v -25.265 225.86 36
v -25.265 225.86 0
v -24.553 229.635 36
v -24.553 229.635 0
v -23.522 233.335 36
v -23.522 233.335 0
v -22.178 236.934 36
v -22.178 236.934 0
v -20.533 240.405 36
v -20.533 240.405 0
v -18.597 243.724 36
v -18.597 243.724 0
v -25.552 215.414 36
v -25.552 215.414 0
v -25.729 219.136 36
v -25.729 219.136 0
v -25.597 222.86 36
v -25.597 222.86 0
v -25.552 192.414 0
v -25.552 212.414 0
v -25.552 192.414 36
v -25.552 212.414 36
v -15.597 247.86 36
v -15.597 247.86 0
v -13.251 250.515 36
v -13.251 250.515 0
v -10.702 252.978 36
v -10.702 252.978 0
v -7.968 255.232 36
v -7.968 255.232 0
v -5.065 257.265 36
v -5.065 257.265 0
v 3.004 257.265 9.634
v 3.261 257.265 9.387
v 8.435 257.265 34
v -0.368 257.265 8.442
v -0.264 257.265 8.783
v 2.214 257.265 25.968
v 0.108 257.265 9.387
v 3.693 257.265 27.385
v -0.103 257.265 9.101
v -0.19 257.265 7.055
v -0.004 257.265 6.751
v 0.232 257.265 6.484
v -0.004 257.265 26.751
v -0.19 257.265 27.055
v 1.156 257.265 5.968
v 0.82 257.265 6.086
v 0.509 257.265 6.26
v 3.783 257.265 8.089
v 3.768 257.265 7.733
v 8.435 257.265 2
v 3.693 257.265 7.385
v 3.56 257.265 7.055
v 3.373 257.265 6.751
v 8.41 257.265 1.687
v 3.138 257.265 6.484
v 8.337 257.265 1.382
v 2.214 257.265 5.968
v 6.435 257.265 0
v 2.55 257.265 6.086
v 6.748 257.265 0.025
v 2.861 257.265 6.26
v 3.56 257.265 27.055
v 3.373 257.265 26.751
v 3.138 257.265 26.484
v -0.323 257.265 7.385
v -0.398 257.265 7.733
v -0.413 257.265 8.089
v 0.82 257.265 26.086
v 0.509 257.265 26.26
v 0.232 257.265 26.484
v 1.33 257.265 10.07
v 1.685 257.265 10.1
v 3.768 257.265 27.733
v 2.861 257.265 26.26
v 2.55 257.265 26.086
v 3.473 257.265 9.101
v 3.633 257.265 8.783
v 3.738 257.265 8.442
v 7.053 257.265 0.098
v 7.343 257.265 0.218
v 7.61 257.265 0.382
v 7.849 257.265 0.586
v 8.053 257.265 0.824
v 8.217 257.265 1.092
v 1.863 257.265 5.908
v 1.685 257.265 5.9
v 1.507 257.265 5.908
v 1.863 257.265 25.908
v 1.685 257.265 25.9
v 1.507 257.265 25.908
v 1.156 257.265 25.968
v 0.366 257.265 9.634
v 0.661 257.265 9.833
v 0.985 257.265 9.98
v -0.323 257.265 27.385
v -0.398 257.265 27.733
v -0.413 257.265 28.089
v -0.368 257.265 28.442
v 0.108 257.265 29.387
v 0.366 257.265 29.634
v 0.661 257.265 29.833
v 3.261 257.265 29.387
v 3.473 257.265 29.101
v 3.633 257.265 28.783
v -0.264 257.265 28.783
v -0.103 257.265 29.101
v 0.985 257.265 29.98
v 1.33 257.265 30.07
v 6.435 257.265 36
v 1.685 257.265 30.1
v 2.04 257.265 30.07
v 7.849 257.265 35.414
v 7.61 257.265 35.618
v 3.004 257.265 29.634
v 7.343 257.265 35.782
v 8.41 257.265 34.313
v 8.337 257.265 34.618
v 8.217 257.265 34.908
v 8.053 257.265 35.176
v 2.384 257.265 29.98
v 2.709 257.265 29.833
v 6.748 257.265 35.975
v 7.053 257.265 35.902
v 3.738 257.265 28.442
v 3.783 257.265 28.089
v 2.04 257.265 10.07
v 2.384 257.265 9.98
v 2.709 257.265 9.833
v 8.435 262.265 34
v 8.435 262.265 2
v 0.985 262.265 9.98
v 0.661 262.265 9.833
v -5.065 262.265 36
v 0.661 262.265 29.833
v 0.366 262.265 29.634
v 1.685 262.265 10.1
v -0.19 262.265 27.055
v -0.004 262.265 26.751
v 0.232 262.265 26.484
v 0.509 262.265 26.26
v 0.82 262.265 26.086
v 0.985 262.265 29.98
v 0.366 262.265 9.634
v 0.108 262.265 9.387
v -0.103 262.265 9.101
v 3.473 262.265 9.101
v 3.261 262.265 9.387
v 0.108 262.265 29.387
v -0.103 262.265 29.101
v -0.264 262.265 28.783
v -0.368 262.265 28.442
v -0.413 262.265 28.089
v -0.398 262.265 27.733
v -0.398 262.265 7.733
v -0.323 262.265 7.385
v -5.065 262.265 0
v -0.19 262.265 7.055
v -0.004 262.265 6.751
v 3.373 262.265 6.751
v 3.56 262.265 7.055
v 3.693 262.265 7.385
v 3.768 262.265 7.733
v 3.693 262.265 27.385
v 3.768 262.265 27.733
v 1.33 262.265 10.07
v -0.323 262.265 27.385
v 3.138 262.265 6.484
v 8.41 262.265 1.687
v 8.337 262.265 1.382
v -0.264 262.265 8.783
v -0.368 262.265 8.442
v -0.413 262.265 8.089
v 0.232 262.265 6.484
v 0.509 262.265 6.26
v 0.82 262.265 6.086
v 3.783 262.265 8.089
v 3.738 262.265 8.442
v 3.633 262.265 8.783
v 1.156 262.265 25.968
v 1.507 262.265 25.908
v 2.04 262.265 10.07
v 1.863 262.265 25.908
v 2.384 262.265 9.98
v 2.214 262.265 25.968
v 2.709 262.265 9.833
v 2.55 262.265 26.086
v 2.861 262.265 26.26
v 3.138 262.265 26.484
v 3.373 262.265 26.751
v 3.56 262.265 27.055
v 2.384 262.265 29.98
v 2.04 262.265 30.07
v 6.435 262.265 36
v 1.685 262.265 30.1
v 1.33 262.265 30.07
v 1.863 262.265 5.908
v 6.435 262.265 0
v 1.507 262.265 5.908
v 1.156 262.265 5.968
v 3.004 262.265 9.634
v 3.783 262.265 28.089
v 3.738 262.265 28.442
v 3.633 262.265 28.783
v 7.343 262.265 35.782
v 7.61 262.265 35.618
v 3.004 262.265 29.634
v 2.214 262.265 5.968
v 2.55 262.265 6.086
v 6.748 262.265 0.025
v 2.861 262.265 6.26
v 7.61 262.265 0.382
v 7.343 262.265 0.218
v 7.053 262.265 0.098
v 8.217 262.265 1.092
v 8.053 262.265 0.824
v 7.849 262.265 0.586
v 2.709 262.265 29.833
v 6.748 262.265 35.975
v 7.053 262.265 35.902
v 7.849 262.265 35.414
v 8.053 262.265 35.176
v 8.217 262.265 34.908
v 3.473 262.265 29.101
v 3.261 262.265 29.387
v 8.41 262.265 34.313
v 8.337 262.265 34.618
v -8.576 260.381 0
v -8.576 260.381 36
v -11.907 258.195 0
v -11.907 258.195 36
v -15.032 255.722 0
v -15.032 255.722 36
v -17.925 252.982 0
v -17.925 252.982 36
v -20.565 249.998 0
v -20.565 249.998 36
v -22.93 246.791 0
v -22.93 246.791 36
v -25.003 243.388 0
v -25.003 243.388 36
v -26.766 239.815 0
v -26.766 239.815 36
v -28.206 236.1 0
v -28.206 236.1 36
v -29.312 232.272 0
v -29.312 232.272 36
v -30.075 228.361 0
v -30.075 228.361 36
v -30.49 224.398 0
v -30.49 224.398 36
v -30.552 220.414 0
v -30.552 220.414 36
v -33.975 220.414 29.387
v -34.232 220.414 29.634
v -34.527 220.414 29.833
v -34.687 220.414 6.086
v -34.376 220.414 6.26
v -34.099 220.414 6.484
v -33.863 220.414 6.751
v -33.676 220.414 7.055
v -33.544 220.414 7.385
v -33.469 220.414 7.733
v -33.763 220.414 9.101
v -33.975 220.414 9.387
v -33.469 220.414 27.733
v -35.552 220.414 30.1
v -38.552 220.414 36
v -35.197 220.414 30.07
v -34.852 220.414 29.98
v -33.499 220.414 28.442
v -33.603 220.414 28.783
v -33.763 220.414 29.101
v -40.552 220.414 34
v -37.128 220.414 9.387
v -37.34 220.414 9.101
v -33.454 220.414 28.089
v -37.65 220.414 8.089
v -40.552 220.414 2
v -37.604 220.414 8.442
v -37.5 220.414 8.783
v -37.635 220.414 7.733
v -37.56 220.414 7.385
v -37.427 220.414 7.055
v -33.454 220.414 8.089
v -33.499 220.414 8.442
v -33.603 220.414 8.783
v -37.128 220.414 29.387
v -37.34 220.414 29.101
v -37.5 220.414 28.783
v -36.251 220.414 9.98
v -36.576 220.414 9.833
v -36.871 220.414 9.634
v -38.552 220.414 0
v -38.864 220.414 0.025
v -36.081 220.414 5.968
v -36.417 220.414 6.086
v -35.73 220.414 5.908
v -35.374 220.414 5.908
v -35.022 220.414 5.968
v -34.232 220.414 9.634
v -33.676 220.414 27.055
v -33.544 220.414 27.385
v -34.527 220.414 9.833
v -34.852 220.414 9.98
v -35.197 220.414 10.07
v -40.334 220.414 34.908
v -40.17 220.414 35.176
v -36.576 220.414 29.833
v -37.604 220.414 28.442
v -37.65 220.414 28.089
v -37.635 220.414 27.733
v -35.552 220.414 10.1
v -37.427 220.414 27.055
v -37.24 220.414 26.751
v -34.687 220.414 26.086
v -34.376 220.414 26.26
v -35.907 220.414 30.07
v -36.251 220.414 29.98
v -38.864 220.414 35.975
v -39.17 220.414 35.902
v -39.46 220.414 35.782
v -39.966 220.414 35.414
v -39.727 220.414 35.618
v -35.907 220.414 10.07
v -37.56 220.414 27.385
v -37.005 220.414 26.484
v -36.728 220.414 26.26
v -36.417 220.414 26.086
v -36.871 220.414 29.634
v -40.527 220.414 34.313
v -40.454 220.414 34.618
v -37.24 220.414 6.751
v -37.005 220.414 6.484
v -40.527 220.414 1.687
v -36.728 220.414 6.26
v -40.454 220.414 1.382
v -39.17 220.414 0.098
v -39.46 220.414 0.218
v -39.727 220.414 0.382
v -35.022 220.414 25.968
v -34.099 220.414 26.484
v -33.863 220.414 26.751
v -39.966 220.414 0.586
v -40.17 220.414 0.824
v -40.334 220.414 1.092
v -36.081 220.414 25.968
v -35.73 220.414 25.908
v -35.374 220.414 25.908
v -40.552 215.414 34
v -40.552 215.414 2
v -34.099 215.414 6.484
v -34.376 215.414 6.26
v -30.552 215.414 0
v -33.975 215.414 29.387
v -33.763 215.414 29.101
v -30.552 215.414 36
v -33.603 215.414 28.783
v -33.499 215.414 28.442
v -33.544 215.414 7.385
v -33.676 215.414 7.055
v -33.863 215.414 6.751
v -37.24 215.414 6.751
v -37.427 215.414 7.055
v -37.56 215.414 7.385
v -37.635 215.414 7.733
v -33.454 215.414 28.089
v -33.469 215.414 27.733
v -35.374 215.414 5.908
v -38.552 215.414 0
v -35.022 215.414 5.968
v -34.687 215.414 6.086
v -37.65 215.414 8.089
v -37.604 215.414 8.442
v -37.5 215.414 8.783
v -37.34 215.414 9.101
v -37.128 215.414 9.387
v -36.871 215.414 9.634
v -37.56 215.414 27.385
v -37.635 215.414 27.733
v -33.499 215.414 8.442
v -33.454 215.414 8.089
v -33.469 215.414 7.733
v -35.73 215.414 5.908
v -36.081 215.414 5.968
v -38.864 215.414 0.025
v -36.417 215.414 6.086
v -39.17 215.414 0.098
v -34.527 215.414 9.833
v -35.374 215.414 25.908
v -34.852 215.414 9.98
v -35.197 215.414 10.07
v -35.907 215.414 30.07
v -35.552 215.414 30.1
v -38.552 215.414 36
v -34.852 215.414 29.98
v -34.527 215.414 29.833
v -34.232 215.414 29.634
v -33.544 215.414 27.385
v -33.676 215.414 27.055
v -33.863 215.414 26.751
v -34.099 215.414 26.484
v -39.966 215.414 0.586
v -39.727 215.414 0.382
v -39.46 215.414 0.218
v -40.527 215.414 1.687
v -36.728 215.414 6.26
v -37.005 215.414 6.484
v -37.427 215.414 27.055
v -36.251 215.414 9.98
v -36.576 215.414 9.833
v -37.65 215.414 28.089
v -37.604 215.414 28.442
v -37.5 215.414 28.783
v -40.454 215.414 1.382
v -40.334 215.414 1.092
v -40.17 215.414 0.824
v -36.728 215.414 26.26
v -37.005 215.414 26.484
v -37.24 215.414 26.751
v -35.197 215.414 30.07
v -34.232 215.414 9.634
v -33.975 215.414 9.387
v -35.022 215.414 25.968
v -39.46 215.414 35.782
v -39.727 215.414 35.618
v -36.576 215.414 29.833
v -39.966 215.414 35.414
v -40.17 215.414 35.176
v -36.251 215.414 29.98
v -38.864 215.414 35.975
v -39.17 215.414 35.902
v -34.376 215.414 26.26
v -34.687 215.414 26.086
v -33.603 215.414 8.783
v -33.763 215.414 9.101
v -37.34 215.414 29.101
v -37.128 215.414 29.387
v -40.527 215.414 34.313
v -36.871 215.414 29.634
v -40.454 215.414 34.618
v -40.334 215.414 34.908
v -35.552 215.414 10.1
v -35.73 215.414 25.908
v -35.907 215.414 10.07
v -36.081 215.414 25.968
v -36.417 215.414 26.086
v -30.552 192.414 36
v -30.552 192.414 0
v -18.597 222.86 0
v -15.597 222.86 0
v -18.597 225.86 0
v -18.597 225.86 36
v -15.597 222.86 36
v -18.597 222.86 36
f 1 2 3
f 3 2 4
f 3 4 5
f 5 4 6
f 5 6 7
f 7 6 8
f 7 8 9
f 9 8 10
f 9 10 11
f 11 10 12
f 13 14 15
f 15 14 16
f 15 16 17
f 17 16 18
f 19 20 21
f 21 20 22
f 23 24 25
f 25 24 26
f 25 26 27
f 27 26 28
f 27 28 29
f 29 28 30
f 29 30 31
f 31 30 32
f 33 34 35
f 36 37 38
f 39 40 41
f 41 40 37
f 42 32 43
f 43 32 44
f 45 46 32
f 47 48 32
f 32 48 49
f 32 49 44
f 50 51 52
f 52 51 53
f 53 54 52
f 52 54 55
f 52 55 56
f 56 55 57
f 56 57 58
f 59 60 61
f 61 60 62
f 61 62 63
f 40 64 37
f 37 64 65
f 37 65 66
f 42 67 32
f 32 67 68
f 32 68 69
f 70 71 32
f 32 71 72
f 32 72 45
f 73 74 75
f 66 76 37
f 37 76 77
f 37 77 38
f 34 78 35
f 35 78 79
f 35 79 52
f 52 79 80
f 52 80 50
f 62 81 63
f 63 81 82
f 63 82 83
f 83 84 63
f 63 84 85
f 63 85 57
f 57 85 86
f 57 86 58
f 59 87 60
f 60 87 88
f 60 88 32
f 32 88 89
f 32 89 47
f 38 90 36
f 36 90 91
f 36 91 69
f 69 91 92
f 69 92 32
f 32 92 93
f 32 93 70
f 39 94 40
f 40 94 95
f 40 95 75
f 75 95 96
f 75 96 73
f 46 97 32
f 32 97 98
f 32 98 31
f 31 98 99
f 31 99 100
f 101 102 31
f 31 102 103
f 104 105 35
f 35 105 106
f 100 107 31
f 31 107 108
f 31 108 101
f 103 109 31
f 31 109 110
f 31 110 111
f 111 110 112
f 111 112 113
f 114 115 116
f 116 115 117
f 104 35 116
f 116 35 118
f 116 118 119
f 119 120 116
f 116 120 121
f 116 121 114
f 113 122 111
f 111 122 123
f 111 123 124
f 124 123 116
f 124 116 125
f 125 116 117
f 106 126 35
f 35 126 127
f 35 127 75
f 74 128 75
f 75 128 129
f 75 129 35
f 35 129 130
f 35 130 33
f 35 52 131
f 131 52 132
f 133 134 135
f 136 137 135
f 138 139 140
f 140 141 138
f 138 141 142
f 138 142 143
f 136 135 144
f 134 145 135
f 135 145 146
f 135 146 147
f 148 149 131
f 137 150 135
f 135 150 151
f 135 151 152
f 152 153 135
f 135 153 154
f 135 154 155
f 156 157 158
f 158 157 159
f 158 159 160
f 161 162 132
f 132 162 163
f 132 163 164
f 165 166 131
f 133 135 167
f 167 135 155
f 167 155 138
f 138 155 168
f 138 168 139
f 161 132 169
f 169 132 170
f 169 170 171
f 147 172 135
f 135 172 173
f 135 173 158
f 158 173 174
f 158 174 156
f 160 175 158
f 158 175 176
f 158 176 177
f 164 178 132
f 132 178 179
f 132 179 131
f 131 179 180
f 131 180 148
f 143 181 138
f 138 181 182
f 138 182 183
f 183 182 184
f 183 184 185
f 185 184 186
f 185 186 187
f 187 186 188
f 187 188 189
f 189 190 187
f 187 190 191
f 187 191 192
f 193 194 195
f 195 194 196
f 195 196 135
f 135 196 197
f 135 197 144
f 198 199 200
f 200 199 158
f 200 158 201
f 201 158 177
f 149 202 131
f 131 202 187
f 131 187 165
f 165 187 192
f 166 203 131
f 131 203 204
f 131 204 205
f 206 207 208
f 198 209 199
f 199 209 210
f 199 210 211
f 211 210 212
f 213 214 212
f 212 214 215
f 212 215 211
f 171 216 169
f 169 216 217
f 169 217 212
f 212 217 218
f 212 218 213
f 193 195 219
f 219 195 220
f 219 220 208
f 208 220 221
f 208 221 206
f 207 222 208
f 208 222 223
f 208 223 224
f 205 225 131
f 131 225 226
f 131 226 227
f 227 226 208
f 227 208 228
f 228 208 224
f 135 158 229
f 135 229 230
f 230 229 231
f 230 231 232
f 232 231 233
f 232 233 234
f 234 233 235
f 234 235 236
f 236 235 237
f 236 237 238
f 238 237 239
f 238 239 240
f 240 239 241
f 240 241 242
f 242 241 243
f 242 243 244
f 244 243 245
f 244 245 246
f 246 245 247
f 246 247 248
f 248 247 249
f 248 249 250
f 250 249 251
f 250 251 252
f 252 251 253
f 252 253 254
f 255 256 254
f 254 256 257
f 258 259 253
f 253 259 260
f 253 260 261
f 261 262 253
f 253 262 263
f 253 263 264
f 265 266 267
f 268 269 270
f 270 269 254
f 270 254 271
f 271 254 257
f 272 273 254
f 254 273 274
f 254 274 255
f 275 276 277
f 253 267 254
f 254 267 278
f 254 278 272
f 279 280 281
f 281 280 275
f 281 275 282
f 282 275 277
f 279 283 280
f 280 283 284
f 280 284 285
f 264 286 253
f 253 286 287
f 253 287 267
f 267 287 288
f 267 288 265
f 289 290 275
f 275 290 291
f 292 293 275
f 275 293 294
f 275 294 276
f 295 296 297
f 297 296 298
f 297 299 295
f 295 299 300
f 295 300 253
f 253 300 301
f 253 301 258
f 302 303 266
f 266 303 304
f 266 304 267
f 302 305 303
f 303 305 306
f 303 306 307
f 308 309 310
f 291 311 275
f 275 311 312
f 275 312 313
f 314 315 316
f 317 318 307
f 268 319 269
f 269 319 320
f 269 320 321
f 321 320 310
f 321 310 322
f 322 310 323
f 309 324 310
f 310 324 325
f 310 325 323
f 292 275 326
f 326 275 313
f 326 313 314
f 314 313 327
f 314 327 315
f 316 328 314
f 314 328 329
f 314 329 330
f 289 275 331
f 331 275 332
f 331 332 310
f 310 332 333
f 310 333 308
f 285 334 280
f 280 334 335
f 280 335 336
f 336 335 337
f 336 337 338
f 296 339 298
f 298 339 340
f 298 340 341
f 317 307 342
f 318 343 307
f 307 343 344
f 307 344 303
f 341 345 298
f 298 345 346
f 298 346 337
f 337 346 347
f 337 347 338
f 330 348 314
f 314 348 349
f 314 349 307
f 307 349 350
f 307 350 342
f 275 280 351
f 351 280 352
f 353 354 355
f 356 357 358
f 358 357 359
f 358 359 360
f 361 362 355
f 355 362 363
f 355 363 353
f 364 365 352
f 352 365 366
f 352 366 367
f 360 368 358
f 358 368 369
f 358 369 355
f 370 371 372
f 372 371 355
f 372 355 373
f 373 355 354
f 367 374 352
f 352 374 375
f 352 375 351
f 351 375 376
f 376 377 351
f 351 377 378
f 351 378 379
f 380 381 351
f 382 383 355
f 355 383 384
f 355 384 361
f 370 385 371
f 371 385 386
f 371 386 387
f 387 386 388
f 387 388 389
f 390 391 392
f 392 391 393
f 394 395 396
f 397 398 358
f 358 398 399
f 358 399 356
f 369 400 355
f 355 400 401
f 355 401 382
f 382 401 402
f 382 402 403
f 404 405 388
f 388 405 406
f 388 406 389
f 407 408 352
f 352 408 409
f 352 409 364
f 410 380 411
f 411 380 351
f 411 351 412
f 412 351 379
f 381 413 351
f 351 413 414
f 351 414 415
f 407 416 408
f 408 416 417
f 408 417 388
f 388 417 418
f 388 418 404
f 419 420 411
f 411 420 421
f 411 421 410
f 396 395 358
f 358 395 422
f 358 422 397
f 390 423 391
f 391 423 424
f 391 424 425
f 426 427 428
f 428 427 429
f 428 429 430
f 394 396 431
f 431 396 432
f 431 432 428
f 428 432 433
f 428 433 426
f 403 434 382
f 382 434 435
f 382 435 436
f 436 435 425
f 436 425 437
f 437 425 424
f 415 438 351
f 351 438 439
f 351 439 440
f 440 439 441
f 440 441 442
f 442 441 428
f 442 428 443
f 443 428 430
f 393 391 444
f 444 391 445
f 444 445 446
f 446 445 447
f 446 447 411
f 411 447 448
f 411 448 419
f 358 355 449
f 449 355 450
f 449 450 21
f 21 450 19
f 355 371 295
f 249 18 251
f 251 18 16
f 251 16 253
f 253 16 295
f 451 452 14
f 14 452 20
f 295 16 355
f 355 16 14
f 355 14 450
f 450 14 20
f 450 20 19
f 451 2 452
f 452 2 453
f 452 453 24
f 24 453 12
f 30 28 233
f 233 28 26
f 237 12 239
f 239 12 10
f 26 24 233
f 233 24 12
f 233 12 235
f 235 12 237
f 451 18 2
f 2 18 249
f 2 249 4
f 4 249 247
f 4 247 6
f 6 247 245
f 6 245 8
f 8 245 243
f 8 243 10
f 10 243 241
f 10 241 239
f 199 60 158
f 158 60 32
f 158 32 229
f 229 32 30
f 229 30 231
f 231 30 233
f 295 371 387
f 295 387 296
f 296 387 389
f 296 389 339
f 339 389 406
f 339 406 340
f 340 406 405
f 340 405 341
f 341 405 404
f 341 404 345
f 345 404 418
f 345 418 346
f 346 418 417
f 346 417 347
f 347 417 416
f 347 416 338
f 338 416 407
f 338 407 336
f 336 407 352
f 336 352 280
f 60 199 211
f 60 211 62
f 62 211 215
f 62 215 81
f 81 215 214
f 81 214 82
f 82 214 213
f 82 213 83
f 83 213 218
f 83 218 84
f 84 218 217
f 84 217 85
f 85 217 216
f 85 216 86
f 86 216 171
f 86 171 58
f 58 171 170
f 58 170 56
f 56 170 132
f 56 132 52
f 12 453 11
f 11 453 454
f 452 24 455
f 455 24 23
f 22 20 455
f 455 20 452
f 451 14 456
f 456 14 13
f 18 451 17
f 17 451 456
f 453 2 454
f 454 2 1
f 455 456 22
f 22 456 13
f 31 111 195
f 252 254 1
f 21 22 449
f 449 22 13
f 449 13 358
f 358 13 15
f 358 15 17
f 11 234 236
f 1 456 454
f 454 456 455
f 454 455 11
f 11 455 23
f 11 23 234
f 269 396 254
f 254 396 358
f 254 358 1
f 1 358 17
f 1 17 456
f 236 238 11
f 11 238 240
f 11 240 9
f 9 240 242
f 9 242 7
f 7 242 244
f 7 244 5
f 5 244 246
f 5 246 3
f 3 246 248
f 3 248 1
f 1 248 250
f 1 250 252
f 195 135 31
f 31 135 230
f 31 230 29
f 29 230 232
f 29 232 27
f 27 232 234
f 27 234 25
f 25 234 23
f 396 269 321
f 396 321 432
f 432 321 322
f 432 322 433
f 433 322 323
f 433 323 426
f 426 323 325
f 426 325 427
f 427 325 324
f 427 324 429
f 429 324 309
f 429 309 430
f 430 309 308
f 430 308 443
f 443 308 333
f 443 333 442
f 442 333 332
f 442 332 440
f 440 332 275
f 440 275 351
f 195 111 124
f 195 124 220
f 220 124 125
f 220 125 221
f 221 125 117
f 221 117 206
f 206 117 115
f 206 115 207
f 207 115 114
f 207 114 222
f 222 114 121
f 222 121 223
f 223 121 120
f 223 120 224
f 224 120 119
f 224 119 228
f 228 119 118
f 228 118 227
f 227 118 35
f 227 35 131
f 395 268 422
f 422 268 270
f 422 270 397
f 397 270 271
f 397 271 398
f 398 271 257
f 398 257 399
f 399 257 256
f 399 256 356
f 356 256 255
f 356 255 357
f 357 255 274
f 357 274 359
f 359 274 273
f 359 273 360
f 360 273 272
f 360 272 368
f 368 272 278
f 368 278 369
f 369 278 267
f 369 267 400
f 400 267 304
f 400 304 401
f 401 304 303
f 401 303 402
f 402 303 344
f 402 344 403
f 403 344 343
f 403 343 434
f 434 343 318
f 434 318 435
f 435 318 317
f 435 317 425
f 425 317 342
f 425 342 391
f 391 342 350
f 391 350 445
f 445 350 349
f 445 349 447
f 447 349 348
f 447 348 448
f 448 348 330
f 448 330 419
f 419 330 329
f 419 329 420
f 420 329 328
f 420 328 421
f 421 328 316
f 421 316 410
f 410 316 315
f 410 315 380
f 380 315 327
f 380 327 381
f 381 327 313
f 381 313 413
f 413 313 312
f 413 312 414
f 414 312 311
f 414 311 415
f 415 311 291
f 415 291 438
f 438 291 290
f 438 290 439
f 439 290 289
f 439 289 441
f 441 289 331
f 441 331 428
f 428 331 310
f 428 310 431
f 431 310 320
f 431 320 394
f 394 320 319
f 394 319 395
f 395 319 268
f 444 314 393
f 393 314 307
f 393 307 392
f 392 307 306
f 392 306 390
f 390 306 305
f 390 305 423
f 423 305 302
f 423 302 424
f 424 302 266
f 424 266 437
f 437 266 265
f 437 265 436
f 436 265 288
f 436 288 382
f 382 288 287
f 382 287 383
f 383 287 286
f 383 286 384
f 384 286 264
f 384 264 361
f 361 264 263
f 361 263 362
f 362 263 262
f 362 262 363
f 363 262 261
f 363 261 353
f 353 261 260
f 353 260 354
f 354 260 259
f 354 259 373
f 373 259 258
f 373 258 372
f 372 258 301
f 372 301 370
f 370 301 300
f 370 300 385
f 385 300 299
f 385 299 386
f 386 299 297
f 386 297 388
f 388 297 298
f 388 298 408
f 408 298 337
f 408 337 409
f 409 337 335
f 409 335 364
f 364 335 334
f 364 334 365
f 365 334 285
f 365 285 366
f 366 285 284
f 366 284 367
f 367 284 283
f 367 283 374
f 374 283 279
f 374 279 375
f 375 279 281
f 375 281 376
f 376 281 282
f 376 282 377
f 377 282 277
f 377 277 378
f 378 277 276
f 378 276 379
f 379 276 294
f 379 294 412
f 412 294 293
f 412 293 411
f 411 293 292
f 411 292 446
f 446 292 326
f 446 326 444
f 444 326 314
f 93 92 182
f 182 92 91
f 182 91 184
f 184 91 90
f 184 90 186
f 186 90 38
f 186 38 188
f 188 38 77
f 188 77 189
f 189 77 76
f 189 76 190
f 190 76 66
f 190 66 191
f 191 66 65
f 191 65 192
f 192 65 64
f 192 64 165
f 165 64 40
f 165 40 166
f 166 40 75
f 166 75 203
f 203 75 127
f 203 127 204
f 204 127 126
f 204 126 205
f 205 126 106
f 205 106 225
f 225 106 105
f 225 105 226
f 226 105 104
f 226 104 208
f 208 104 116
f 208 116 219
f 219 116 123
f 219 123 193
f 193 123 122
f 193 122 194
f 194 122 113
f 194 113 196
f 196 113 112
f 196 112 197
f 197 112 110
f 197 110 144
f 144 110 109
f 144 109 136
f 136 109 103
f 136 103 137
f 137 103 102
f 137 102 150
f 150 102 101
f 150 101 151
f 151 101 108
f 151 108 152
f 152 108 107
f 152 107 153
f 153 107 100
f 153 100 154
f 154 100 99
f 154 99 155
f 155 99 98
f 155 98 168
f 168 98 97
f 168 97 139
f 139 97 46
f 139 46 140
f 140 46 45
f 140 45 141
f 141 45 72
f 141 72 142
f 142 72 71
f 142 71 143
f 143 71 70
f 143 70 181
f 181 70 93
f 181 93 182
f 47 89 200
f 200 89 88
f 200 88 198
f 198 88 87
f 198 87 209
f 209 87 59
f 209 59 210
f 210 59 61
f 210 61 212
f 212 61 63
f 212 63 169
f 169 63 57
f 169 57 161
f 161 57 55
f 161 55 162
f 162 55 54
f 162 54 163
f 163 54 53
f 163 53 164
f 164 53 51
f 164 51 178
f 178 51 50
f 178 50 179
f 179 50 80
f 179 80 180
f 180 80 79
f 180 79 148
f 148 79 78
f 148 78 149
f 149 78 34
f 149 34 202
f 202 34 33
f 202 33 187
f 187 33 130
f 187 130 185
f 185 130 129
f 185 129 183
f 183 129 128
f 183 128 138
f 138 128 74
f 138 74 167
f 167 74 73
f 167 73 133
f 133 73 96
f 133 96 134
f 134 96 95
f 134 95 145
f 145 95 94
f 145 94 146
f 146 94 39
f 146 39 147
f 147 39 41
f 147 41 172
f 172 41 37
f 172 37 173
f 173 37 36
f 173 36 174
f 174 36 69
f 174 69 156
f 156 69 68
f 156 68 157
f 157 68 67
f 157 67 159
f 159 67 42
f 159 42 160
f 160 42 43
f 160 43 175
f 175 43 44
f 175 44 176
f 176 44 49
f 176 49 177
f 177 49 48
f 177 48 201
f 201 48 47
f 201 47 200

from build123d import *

# Parameters (mm, degrees)
SKETCH3_W           = 13.5
SKETCH3_H           = 5
SKETCH3_W_2         = 10
SKETCH3_W_3         = 5
SKETCH3_H_2         = 23
BOSS_EXTRUDE1_DEPTH = 45
FILLET1_R           = 2
SKETCH5_R           = 2.1
CUT_EXTRUDE2_DEPTH  = 45
SKETCH6_R           = 2.1
CUT_EXTRUDE3_DEPTH  = 45
SKETCH7_W           = 8.210459319
SKETCH7_H           = 32.58724939
BOSS_EXTRUDE2_DEPTH = 5
SKETCH8_R           = 2.1
CUT_EXTRUDE5_DEPTH  = 45
BOSS_EXTRUDE3_DEPTH = 45
SKETCH10_W          = 60.355694637
SKETCH10_H          = 75.381613981
CUT_EXTRUDE7_DEPTH  = 9
SKETCH13_W          = 6.095088126
SKETCH13_H          = 29.055723933
BOSS_EXTRUDE6_DEPTH = 5
SKETCH14_W          = 6.424633762
SKETCH14_H          = 30.784703445
BOSS_EXTRUDE7_DEPTH = 5
FILLET3_R           = 2
SKETCH15_R          = 2.1
CUT_EXTRUDE8_DEPTH  = 9
SKETCH16_R          = 2.1
CUT_EXTRUDE9_DEPTH  = 9


with BuildPart() as part:
    # Sketch3 → Boss-Extrude1 (new body)
    with BuildSketch(Plane.XY):
        with BuildLine():
            ThreePointArc((-5.06519953, 257.264696919), (-21.146881422, 239.197551787), (-25.551614771, 215.414352888))
            Line((-25.551614771, 215.414352888), (-30.551614771, 215.414352888))
            Line((-30.551614771, 215.414352888), (-30.551614771, 220.414352888))
            ThreePointArc((-30.551614771, 220.414352888), (-24.004098535, 245.112635185), (-5.06519953, 262.264696919))
            Line((-5.06519953, 262.264696919), (-5.06519953, 257.264696919))
        make_face()
        with Locations((1.68480047, 259.764696919)):
            Rectangle(SKETCH3_W, SKETCH3_H)
        with Locations((-35.551614771, 217.914352888)):
            Rectangle(SKETCH3_W_2, SKETCH3_H)
        with Locations((-28.051614771, 203.914352888)):
            Rectangle(SKETCH3_W_3, SKETCH3_H_2)
    extrude(amount=BOSS_EXTRUDE1_DEPTH)

    # Fillet1
    fillet1_edges = [part.edges().sort_by_distance(p)[0] for p in [
        (-40.551614771, 217.914352888, 0),
        (8.43480047, 259.764696919, 45),
        (8.43480047, 259.764696919, 0),
        (-40.551614771, 217.914352888, 45),
    ]]
    fillet(fillet1_edges, radius=FILLET1_R)

    # Sketch5 → Cut-Extrude2 (cut)
    with BuildSketch(Plane(origin=(0, 262.264696919, 0), x_dir=(1, 0, 0), z_dir=(0, 1, 0))):
        with Locations((0.24480047, -40)):
            Circle(SKETCH5_R)
        with Locations((0.24480047, -14.8)):
            Circle(SKETCH5_R)
    extrude(amount=-CUT_EXTRUDE2_DEPTH, mode=Mode.SUBTRACT)

    # Sketch6 → Cut-Extrude3 (cut)
    with BuildSketch(Plane(origin=(0, 220.414352888, 0), x_dir=(1, 0, 0), z_dir=(0, 1, 0))):
        with Locations((-35.551614771, -10)):
            Circle(SKETCH6_R)
        with Locations((-35.551614771, -35)):
            Circle(SKETCH6_R)
    extrude(amount=-CUT_EXTRUDE3_DEPTH, mode=Mode.SUBTRACT)

    # Sketch7 → Boss-Extrude2 (add)
    with BuildSketch(Plane(origin=(0, 262.264696919, 0), x_dir=(1, 0, 0), z_dir=(0, 1, 0))):
        with Locations((1.09445166, -26.923464517)):
            Rectangle(SKETCH7_W, SKETCH7_H)
    extrude(amount=-BOSS_EXTRUDE2_DEPTH)

    # Sketch8 → Cut-Extrude5 (cut)
    with BuildSketch(Plane(origin=(0, 262.264696919, 0), x_dir=(1, 0, 0), z_dir=(0, 1, 0))):
        with Locations((0.24480047, -5)):
            Circle(SKETCH8_R)
        with Locations((0.24480047, -30.2)):
            Circle(SKETCH8_R)
    extrude(amount=-CUT_EXTRUDE5_DEPTH, mode=Mode.SUBTRACT)

    # Sketch9 → Boss-Extrude3 (add, through all)
    with BuildSketch(Plane.XY.offset(45)):
        with BuildLine():
            ThreePointArc((-25.265361734, 225.859750777), (-25.456525287, 224.362535182), (-25.597369426, 222.859750777))
            Line((-25.597369426, 222.859750777), (-18.597369426, 222.859750777))
            Line((-18.597369426, 222.859750777), (-15.597369426, 222.859750777))
            Line((-15.597369426, 222.859750777), (-15.597369426, 247.859750777))
            ThreePointArc((-15.597369426, 247.859750777), (-17.156118075, 245.834377519), (-18.597369426, 243.72377838))
            Line((-18.597369426, 243.72377838), (-18.597369426, 225.859750777))
            Line((-18.597369426, 225.859750777), (-25.265361734, 225.859750777))
        make_face()
        Polygon((-15.597369426, 222.859750777), (-18.597369426, 222.859750777), (-25.551614771, 215.414352888), (-25.551614771, 212.414352888), align=None)
    extrude(amount=-BOSS_EXTRUDE3_DEPTH)

    # Sketch10 → Cut-Extrude7 (cut)
    with BuildSketch(Plane.XY.offset(45)):
        with Locations((-21.743046849, 224.573889929)):
            Rectangle(SKETCH10_W, SKETCH10_H)
    extrude(amount=-CUT_EXTRUDE7_DEPTH, mode=Mode.SUBTRACT)

    # Sketch13 → Boss-Extrude6 (add)
    with BuildSketch(Plane(origin=(0, 220.414352888, 0), x_dir=(1, 0, 0), z_dir=(0, 1, 0))):
        with Locations((-35.175849568, -21.472138034)):
            Rectangle(SKETCH13_W, SKETCH13_H)
    extrude(amount=-BOSS_EXTRUDE6_DEPTH)

    # Sketch14 → Boss-Extrude7 (add)
    with BuildSketch(Plane(origin=(0, 262.264696919, 0), x_dir=(1, 0, 0), z_dir=(0, 1, 0))):
        with Locations((0.1637931, -17.411075239)):
            Rectangle(SKETCH14_W, SKETCH14_H)
    extrude(amount=-BOSS_EXTRUDE7_DEPTH)

    # Fillet3
    fillet3_edges = [part.edges().sort_by_distance(p)[0] for p in [
        (-40.551614771, 217.914352888, 36),
        (8.43480047, 259.764696919, 36),
    ]]
    fillet(fillet3_edges, radius=FILLET3_R)

    # Sketch15 → Cut-Extrude8 (cut)
    with BuildSketch(Plane(origin=(0, 220.414352888, 0), x_dir=(1, 0, 0), z_dir=(0, 1, 0))):
        with Locations((-35.551614771, -8)):
            Circle(SKETCH15_R)
        with Locations((-35.551614771, -28)):
            Circle(SKETCH15_R)
    extrude(amount=-CUT_EXTRUDE8_DEPTH, mode=Mode.SUBTRACT)

    # Sketch16 → Cut-Extrude9 (cut)
    with BuildSketch(Plane(origin=(0, 262.264696919, 0), x_dir=(1, 0, 0), z_dir=(0, 1, 0))):
        with Locations((1.68480047, -8)):
            Circle(SKETCH16_R)
        with Locations((1.68480047, -28)):
            Circle(SKETCH16_R)
    extrude(amount=-CUT_EXTRUDE9_DEPTH, mode=Mode.SUBTRACT)


solid = part.part
